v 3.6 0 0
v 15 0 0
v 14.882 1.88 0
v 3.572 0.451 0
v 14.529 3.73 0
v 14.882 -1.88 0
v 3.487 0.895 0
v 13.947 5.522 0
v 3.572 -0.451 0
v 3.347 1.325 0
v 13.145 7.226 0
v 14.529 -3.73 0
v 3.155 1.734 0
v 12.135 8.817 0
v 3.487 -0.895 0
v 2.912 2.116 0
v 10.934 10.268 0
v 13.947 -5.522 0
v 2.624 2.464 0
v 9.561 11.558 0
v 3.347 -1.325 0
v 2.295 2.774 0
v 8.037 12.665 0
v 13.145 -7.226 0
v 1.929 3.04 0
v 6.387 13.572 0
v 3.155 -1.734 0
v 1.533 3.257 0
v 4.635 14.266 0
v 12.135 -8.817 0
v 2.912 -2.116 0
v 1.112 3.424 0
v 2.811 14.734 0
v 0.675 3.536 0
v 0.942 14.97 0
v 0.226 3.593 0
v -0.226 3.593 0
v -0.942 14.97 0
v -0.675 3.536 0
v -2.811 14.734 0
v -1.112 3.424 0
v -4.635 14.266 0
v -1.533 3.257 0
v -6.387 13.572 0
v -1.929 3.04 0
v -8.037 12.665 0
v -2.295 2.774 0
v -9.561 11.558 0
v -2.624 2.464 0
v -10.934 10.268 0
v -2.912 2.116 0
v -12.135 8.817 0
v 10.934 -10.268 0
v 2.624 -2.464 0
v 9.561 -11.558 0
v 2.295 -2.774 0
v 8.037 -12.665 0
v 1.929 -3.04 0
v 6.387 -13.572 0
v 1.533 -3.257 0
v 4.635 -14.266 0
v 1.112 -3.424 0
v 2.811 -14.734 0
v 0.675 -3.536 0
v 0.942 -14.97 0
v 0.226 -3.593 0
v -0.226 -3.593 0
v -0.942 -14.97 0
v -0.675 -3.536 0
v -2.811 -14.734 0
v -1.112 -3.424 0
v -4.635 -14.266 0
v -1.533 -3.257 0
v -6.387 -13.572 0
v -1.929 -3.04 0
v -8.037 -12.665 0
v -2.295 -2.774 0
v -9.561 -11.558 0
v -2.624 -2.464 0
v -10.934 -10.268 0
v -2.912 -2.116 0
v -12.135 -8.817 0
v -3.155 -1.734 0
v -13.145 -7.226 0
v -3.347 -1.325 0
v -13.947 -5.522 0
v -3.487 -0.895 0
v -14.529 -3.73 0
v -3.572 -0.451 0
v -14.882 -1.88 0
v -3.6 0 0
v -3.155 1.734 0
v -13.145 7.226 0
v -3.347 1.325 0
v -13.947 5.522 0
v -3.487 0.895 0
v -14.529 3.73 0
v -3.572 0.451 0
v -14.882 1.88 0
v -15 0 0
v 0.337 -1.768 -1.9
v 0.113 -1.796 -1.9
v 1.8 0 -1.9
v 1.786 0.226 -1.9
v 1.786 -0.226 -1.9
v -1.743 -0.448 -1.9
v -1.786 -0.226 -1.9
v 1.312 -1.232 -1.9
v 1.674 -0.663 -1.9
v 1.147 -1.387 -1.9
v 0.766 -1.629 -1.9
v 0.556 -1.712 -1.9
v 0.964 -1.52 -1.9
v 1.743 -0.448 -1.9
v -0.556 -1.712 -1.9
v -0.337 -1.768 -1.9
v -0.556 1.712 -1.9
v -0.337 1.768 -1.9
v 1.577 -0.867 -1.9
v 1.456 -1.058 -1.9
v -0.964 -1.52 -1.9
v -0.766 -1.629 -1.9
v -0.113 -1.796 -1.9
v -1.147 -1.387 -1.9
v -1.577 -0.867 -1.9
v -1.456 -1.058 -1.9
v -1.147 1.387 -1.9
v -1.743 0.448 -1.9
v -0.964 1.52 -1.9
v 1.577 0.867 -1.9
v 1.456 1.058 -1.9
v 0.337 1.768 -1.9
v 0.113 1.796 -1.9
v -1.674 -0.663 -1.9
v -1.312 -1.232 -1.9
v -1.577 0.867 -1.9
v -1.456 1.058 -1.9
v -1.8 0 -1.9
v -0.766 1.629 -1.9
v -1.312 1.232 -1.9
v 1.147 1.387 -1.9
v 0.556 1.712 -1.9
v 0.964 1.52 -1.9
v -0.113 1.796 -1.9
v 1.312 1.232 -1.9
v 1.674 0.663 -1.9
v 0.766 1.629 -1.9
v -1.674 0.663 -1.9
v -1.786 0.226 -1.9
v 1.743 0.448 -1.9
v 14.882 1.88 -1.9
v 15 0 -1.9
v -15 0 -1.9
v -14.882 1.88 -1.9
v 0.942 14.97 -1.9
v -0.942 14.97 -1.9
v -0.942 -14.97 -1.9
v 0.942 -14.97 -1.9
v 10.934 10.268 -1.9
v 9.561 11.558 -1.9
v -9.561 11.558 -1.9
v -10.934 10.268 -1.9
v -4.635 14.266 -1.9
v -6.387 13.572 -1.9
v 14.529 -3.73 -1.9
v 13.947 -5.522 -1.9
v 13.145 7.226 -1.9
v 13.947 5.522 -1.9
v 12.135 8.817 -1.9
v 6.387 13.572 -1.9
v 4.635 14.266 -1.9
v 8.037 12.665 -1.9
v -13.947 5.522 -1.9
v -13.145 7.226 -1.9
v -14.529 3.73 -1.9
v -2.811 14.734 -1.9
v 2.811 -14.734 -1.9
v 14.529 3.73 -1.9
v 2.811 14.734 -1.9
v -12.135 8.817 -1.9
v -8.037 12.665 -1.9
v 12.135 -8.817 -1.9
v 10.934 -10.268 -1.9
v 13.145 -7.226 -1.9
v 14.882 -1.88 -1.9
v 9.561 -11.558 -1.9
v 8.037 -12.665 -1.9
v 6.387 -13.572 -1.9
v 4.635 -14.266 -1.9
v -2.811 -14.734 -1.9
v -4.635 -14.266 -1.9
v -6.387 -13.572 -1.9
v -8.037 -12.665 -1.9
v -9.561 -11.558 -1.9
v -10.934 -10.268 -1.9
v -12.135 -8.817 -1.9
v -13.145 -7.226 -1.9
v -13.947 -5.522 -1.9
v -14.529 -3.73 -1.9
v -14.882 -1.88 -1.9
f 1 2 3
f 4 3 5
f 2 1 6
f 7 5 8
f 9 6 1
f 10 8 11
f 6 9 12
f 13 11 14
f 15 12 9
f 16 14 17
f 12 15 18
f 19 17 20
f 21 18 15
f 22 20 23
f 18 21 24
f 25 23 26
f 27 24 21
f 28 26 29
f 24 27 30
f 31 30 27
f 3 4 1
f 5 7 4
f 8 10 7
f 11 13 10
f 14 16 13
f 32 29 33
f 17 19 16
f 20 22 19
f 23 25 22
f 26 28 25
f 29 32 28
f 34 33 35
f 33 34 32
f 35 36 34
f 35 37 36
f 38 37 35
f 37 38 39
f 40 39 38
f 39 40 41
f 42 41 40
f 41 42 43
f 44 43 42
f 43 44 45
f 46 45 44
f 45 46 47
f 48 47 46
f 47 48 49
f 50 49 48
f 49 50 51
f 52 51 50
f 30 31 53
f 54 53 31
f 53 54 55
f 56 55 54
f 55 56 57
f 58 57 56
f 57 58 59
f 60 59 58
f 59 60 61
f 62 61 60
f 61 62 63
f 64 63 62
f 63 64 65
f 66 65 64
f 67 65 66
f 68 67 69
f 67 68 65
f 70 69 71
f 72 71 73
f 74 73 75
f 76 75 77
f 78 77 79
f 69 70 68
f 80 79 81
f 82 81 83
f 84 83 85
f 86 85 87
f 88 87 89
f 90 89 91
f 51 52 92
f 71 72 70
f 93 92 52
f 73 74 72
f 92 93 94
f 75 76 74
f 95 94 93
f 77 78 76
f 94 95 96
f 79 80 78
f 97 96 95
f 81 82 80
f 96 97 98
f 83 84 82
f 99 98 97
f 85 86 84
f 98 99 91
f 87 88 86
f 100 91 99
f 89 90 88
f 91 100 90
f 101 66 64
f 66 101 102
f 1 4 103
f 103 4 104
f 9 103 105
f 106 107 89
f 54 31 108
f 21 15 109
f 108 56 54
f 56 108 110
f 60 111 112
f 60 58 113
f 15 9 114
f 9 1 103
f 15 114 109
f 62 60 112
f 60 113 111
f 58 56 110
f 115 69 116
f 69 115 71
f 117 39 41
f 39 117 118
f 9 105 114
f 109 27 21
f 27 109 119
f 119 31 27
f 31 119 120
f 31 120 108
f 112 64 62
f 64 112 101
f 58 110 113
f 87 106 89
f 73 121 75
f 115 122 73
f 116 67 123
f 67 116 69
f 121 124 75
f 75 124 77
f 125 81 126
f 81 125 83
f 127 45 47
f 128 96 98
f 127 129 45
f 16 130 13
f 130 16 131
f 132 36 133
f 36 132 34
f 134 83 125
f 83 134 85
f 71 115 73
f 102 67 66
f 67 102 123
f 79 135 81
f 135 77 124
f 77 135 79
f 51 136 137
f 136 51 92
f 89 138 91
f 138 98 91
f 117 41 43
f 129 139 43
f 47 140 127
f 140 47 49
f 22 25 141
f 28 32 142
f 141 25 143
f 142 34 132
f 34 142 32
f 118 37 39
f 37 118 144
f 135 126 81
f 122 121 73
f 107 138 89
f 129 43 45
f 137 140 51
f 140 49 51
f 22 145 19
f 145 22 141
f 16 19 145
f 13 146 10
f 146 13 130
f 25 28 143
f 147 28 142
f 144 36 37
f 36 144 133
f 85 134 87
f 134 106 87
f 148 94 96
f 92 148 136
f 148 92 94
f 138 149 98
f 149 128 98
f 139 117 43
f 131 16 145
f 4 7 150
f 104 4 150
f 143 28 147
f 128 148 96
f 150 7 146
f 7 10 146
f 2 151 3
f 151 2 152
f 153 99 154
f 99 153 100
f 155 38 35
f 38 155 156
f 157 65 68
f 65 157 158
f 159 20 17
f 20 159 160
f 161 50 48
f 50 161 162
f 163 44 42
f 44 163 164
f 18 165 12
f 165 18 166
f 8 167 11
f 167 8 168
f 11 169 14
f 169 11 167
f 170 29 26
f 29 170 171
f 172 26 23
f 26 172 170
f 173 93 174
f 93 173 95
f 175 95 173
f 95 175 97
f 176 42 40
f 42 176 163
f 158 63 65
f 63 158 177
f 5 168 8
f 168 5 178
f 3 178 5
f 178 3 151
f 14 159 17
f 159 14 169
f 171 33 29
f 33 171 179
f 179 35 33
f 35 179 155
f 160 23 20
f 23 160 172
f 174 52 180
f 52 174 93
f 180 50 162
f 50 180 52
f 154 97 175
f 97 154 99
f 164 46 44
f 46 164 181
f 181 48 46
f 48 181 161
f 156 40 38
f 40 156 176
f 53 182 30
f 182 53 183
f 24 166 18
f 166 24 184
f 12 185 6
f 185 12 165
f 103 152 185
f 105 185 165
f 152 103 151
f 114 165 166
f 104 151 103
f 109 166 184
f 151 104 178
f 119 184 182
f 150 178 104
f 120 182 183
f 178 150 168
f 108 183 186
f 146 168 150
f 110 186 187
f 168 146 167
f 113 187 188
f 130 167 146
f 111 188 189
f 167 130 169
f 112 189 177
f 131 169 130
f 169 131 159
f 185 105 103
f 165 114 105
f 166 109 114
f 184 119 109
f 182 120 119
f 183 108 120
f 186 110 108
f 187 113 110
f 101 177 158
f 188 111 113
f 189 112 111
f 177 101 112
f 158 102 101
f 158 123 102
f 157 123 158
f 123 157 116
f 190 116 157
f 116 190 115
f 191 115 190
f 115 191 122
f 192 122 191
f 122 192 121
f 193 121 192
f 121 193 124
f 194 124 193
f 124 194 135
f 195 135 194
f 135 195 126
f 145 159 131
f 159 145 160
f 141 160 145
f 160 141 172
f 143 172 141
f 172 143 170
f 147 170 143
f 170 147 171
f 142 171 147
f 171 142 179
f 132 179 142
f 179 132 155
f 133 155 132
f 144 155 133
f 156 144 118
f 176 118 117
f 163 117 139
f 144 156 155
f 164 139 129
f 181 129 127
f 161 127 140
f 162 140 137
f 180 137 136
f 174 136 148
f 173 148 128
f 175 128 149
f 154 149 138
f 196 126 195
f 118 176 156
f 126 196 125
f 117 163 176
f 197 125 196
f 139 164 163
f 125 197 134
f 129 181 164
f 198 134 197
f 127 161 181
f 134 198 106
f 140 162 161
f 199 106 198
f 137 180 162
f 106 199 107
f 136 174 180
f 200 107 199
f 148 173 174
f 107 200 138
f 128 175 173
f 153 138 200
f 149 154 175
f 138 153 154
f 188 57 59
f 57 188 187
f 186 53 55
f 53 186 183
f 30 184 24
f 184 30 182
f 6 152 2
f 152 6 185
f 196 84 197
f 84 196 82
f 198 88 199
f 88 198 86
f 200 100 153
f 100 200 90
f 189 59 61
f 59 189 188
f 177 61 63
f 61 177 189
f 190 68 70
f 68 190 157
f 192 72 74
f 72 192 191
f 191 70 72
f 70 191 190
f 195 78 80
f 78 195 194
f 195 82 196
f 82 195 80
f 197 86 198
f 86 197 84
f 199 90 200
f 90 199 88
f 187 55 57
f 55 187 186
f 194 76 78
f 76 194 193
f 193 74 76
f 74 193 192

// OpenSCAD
$fn = 50;


difference() {
	union() {
		translate(v = [0, 0, -1.9000000000]) {
			cylinder(h = 1.9000000000, r = 15.0000000000);
		}
	}
	union() {
		translate(v = [0, 0, 0]) {
			rotate(a = [0, 0, 0]) {
				difference() {
					union() {
						translate(v = [0, 0, -4.9000000000]) {
							cylinder(h = 4.9000000000, r = 1.5000000000);
						}
						translate(v = [0, 0, -1.9000000000]) {
							cylinder(h = 1.9000000000, r1 = 1.8000000000, r2 = 3.6000000000);
						}
						translate(v = [0, 0, -4.9000000000]) {
							cylinder(h = 4.9000000000, r = 1.8000000000);
						}
						translate(v = [0, 0, -4.9000000000]) {
							cylinder(h = 4.9000000000, r = 1.5000000000);
						}
					}
					union();
				}
			}
		}
	}
}
